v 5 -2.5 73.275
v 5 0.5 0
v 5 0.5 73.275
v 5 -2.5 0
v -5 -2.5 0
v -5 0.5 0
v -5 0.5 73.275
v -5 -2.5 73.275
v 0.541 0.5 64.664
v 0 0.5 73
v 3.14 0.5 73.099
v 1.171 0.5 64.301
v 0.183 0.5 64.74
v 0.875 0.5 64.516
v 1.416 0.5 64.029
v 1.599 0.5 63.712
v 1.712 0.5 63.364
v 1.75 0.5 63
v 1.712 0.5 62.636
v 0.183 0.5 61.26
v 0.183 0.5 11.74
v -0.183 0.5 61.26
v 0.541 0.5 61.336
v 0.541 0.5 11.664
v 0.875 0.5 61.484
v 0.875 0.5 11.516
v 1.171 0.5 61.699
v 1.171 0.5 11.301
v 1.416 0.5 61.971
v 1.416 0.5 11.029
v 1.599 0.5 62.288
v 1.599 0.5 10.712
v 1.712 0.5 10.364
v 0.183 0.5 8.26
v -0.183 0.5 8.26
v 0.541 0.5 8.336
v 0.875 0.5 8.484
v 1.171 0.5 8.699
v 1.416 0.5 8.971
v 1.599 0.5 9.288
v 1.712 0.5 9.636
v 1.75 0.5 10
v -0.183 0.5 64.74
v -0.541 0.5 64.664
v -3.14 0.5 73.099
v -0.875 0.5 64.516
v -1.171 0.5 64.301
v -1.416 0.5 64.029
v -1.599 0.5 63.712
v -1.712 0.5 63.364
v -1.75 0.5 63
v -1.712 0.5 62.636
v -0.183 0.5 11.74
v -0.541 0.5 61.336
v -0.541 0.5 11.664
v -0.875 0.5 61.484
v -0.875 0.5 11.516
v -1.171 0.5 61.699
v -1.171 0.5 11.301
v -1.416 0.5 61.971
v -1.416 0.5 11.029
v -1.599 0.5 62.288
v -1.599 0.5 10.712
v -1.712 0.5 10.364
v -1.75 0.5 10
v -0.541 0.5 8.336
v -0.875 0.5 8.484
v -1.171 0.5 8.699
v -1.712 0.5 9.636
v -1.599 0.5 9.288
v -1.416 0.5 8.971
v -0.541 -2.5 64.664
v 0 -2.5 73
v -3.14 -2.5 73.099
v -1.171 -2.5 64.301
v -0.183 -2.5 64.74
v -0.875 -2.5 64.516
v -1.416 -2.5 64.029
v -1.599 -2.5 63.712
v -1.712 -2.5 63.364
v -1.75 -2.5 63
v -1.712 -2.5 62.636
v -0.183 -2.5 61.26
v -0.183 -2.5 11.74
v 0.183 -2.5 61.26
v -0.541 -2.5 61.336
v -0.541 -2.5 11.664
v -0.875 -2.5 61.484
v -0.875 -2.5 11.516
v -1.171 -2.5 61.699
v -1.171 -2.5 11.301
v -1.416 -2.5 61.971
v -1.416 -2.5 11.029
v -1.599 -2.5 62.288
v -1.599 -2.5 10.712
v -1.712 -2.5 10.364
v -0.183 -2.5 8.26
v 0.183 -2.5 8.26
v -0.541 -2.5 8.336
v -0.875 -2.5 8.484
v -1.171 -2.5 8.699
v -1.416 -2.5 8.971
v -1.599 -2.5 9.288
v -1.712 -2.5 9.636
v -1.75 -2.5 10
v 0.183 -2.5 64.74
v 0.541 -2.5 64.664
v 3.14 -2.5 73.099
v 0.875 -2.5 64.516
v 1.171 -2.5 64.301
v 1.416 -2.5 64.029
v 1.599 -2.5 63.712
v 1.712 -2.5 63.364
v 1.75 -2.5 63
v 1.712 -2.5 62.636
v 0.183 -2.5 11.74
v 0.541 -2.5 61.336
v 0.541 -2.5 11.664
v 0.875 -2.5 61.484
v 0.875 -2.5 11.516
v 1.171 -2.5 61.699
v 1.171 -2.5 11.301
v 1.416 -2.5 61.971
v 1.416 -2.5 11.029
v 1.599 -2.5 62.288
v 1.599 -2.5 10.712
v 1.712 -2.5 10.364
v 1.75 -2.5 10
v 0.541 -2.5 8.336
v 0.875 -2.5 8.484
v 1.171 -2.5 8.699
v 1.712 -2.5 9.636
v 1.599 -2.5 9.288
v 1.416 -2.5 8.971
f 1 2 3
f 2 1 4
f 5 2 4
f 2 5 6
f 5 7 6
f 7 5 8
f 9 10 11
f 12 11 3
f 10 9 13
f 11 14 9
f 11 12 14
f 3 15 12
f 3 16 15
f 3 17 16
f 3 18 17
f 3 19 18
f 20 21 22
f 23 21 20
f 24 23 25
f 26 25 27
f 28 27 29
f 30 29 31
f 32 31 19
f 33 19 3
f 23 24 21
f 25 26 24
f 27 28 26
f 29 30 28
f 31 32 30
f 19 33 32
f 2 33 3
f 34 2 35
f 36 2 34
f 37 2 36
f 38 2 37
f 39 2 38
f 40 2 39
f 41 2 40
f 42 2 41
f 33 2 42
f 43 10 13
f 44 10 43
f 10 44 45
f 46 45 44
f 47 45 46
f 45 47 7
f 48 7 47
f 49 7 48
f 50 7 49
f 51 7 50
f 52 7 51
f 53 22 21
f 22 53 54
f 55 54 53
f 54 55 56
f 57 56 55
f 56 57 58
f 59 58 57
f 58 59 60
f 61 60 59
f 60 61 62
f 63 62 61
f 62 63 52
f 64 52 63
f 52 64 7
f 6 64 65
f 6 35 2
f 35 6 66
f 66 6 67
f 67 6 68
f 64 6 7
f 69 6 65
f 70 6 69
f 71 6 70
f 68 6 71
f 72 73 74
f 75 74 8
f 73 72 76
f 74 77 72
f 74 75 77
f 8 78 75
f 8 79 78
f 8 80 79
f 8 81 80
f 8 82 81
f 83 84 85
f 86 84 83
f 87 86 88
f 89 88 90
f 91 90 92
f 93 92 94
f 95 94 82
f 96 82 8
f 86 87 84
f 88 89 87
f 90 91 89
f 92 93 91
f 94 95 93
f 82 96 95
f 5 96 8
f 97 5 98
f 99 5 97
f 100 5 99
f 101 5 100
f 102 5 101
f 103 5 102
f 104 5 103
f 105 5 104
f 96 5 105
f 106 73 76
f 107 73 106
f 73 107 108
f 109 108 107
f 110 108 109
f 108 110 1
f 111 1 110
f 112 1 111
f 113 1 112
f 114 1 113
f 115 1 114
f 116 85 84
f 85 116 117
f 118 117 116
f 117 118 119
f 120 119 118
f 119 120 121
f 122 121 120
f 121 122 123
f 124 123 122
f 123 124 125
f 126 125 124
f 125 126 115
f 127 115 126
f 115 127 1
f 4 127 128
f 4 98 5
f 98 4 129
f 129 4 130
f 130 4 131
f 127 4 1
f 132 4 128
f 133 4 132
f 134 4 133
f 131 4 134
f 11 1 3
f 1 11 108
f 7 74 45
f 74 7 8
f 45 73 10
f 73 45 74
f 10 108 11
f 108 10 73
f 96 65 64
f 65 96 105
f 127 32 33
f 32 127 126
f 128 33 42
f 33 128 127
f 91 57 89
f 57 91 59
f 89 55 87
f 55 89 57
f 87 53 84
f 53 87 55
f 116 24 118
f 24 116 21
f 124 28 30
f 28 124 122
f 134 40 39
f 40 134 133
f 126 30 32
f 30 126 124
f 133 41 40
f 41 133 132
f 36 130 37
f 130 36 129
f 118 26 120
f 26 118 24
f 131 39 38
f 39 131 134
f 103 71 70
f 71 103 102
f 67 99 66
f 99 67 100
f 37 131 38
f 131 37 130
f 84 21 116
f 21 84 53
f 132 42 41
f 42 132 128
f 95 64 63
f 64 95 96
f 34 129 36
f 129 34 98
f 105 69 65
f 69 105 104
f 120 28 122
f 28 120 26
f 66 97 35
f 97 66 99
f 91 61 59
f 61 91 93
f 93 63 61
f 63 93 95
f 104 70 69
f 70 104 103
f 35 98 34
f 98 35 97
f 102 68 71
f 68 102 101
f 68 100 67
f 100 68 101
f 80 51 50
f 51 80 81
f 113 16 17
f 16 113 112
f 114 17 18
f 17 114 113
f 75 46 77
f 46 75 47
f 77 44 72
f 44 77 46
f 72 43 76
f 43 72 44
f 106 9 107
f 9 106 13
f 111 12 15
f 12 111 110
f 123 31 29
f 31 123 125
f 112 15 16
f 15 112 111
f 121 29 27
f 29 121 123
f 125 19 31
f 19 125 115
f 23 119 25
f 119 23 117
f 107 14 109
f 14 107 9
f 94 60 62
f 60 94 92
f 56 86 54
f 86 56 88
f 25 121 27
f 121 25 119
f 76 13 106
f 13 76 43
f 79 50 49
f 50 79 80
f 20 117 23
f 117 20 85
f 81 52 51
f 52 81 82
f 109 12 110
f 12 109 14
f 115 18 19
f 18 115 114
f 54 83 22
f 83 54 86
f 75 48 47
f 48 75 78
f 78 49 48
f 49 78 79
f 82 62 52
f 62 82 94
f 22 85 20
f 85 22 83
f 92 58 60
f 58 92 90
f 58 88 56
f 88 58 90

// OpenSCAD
L = 73;
difference(){
  translate([-5, -2.5, 0])cube([10, 3, L+1]);
  translate([0,3.5,50+L])rotate([90,0,0])cylinder(r=50, h=7,center=false, $fn=100);
  translate([0,0,10])rotate([90, 0,0])cylinder(d=3.5, h=100, $fn=30,center=true);
  translate([0,0,L-10])rotate([90, 0,0])cylinder(d=3.5, h=100, $fn=30,center=true);
}
